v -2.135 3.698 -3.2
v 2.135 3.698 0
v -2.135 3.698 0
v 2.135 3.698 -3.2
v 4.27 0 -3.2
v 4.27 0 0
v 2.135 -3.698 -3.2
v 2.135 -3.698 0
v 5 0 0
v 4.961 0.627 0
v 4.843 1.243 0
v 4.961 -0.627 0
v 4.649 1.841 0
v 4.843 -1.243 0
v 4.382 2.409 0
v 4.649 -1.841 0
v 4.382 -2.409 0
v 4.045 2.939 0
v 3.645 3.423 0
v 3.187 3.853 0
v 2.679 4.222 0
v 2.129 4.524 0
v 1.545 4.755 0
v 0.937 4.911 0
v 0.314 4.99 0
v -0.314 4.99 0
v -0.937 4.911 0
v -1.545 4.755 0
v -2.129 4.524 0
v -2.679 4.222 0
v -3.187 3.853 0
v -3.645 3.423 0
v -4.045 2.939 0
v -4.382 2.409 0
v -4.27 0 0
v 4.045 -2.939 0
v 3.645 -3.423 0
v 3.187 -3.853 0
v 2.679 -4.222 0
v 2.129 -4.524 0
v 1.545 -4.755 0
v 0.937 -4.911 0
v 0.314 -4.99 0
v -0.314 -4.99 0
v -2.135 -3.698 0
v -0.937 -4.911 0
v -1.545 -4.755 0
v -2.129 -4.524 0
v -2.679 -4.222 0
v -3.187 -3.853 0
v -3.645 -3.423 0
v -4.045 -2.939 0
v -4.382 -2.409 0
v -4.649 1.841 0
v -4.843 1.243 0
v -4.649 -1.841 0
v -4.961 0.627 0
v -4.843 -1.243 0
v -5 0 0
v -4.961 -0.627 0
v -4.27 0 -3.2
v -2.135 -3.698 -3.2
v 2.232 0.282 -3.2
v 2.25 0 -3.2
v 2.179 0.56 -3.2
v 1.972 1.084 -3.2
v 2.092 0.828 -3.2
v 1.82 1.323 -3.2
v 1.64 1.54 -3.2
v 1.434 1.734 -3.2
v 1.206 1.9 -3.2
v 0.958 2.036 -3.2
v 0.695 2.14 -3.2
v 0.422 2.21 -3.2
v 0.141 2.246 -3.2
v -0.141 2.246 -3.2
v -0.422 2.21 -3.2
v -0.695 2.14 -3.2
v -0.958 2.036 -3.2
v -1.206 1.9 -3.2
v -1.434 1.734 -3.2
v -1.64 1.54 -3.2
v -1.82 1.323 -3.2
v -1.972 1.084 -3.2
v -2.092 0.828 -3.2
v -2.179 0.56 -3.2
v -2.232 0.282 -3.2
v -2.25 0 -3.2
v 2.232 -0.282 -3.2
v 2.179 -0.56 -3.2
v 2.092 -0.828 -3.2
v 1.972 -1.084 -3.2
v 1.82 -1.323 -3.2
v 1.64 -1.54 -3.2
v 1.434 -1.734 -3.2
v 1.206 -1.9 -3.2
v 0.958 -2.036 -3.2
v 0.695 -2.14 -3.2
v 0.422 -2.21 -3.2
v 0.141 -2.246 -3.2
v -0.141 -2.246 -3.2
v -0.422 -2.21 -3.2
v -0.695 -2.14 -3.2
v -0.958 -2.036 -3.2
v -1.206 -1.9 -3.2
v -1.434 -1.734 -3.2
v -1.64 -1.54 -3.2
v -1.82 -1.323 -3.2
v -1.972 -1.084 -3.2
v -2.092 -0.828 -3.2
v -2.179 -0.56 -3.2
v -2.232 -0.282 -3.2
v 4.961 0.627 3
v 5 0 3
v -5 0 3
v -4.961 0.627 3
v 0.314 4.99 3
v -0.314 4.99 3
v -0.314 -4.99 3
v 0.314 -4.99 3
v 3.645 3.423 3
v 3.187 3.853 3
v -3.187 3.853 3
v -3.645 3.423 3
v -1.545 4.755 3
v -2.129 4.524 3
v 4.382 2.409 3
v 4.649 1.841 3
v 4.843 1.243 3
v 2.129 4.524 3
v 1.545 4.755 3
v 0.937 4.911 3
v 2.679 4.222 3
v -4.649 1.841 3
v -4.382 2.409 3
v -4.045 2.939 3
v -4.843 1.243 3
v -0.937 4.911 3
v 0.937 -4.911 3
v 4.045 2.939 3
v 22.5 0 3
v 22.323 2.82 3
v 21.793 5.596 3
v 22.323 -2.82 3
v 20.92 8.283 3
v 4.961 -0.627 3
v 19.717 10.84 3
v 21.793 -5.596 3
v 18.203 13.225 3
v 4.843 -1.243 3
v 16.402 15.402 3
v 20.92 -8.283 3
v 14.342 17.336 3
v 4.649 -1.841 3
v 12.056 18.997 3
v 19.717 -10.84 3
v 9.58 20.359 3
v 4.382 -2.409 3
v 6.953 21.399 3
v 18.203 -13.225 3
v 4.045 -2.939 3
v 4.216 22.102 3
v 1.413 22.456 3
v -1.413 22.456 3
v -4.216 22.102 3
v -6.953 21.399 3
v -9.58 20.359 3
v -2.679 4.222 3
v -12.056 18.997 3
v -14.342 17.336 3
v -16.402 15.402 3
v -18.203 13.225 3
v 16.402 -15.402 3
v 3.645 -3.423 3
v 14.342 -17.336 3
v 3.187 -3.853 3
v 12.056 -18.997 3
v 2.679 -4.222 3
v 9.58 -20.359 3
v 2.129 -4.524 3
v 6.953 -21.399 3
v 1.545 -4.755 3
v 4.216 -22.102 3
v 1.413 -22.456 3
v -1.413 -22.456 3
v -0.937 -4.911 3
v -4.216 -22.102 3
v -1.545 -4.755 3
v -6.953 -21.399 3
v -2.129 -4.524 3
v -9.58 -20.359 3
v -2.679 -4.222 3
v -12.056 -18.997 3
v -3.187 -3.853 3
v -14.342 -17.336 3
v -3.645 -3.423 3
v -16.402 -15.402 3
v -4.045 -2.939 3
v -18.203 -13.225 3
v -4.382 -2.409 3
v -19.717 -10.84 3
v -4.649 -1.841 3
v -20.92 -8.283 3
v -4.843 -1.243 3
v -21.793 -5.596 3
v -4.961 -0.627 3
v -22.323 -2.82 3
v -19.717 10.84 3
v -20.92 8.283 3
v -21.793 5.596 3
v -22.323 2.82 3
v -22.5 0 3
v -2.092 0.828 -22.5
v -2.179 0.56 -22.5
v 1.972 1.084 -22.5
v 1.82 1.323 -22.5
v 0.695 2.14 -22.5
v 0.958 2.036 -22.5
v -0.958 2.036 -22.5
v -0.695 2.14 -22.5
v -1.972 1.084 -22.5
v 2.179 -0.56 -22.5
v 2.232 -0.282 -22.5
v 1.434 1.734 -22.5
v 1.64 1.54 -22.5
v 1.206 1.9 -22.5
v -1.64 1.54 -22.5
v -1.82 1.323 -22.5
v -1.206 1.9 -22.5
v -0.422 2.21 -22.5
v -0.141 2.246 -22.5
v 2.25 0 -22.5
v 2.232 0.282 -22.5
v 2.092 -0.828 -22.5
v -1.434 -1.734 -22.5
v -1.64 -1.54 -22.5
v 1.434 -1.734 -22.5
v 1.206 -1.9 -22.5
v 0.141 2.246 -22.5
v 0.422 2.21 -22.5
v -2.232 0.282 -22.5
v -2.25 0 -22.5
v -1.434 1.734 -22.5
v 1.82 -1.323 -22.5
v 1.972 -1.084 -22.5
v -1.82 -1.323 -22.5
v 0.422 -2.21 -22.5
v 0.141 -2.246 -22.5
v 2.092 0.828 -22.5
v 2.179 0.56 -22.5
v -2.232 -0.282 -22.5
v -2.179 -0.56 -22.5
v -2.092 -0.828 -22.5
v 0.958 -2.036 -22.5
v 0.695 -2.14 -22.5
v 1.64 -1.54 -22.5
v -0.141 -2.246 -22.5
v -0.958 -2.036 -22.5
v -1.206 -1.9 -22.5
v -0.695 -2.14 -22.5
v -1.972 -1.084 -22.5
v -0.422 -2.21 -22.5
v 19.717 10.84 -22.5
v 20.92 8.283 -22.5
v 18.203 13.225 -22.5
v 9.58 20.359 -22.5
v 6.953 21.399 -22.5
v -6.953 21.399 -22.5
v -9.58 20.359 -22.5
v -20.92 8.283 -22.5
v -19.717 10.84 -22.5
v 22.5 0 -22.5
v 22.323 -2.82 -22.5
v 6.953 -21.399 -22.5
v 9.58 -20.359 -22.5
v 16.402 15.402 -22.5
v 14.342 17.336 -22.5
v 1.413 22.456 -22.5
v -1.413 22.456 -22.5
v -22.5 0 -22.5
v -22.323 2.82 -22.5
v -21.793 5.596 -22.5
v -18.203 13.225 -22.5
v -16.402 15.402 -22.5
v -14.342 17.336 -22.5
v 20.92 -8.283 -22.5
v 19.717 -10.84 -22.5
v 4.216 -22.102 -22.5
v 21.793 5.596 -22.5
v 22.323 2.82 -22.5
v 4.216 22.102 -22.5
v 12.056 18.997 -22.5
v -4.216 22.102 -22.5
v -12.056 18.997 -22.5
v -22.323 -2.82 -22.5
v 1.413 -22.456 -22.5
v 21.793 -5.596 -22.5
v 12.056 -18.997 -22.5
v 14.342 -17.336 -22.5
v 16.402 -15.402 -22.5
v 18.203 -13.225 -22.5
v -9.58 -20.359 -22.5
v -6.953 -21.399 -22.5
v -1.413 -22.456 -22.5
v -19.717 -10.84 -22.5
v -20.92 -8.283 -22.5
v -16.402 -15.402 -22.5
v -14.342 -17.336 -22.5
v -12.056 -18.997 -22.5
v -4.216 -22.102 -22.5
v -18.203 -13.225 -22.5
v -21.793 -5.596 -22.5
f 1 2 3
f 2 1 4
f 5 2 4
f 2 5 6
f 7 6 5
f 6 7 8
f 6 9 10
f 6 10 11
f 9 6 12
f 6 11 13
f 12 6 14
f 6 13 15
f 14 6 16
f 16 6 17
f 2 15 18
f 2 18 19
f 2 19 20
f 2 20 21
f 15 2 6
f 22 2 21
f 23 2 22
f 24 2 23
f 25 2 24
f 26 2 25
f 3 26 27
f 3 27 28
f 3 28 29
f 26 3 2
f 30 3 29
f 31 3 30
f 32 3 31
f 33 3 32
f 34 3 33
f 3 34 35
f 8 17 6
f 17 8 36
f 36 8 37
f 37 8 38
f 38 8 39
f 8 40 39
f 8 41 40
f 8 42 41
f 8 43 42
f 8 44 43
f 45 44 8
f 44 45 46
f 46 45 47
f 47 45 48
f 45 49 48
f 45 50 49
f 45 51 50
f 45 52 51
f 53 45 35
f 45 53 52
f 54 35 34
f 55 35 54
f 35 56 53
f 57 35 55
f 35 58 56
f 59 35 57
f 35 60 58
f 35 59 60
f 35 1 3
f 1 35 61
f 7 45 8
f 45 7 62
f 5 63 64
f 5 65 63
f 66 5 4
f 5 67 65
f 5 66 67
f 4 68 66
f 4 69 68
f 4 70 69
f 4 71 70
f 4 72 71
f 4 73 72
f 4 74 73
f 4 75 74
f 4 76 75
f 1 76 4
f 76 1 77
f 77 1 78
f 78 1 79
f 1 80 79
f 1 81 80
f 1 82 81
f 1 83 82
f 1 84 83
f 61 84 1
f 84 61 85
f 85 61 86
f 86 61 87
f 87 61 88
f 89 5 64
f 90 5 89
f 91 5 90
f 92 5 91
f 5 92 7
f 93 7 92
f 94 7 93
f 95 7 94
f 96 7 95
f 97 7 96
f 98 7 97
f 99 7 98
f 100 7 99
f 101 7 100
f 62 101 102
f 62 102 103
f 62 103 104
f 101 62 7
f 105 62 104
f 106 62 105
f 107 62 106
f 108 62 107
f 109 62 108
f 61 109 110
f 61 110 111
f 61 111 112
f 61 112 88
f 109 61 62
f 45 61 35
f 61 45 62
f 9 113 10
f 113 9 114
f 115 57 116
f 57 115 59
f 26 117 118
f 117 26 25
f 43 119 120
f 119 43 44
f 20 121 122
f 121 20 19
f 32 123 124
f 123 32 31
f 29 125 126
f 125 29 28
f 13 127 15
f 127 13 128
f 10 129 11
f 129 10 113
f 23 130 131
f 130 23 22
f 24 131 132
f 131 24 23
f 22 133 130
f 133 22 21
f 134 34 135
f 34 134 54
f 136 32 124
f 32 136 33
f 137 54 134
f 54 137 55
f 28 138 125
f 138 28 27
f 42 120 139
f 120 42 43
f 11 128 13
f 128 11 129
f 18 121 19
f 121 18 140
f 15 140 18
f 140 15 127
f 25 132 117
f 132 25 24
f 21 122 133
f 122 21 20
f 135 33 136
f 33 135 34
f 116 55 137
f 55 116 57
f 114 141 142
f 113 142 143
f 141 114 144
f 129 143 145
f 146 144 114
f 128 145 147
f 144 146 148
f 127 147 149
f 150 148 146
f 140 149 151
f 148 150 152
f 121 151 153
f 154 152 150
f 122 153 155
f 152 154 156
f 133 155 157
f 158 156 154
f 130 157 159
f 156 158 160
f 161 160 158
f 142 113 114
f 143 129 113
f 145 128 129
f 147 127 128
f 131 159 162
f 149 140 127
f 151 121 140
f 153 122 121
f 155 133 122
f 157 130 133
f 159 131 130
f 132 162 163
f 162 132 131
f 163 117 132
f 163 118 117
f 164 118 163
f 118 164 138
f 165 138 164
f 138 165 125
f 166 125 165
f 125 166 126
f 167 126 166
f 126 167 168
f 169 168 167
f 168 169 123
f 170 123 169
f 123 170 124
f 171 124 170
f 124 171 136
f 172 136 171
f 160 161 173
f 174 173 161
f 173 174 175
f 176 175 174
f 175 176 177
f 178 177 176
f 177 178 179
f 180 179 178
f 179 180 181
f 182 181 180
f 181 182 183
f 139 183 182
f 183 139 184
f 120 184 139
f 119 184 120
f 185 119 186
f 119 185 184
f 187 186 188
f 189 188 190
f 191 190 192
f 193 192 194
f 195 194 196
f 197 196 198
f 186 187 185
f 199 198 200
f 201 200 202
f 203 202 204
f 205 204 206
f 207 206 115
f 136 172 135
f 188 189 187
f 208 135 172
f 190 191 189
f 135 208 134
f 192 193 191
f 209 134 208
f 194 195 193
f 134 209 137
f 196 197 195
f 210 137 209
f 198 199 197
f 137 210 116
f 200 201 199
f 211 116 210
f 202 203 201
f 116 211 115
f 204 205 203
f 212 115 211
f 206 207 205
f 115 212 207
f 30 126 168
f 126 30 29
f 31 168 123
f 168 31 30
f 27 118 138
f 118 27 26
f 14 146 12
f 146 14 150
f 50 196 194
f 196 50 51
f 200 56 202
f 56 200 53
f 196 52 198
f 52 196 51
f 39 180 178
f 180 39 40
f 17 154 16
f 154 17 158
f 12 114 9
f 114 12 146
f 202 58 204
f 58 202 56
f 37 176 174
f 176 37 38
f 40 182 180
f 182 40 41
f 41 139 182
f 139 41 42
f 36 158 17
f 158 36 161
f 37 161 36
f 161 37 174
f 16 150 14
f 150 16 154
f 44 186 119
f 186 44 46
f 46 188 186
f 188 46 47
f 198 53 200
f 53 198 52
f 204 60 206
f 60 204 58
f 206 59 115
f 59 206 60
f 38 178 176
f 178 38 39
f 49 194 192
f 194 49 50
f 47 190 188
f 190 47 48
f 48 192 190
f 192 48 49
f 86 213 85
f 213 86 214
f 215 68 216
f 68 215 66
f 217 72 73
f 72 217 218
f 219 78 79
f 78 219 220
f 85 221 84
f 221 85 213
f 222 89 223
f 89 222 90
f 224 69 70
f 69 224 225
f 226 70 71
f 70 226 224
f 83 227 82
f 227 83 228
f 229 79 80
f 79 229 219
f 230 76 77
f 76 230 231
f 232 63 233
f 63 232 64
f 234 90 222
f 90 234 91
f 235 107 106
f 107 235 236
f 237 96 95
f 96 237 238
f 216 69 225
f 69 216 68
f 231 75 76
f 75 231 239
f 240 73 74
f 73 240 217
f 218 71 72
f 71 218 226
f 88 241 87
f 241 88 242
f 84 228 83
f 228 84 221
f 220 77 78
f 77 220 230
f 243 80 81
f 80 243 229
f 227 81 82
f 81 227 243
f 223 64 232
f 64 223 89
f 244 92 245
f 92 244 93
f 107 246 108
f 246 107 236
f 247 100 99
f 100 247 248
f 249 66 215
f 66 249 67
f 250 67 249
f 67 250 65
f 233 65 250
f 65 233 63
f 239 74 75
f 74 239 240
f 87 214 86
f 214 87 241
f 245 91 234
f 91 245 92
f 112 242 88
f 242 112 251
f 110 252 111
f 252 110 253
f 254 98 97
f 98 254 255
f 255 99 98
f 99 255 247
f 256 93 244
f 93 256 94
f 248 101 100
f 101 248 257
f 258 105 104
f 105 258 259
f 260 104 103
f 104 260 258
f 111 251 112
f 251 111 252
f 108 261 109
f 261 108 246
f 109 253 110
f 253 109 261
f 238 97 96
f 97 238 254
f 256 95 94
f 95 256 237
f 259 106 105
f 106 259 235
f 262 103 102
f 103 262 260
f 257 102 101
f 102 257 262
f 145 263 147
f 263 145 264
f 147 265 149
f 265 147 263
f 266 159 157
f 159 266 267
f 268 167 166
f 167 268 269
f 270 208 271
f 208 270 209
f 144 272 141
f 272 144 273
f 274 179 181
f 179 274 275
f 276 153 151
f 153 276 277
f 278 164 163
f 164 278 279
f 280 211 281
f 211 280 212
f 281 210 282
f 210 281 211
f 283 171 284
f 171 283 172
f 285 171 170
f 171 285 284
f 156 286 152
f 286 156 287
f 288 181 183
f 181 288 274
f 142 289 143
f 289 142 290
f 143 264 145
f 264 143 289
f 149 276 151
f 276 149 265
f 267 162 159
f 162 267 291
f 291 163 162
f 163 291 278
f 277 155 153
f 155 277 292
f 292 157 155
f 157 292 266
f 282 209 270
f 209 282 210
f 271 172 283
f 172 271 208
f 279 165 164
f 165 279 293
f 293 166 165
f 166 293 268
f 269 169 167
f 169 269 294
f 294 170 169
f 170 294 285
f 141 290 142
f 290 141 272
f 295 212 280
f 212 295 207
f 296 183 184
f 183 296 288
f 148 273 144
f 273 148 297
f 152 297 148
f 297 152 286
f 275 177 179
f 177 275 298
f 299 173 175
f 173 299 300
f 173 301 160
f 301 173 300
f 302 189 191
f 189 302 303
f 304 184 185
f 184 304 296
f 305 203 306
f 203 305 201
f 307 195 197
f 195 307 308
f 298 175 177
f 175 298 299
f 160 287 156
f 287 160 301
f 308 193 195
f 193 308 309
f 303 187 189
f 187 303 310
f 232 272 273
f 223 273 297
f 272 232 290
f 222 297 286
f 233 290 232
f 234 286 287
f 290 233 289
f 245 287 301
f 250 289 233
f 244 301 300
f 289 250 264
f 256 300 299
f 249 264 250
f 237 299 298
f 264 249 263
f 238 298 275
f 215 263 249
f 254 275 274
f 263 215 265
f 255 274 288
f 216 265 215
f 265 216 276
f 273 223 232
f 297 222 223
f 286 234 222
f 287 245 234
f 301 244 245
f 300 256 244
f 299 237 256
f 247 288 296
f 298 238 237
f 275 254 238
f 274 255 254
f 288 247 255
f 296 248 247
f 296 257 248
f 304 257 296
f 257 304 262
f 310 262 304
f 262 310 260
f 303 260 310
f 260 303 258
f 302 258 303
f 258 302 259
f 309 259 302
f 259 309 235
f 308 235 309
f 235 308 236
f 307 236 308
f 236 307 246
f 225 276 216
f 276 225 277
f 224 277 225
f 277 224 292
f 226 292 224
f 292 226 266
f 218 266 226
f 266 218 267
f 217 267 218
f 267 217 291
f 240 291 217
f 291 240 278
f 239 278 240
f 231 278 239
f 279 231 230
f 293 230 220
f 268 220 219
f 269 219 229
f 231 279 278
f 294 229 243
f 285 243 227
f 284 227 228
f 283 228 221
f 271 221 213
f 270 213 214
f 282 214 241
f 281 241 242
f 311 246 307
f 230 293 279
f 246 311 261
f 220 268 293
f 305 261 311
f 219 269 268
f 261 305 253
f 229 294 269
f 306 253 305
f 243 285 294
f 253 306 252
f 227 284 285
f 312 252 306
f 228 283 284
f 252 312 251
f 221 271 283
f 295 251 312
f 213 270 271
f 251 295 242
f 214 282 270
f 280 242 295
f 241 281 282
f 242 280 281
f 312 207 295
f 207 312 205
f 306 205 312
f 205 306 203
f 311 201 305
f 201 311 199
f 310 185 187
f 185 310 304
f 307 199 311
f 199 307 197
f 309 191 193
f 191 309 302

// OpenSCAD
$fn = 50;

difference() {
	union() {
		translate(v = [0, 0, -22.5]) {
			cylinder(h = 25.5, r = 22.5);
		}
	}
	union() {
		translate(v = [0, 0, 0]) {
			rotate(a = [0, 0, 0]) {
				difference() {
					union() {
						translate(v = [0, 0, -3.2]) {
							linear_extrude(height = 3.2) {
								polygon(points = [[4.2698, 0.0], [2.1349000000000005, 3.697755269078796], [-2.134899999999999, 3.6977552690787965], [-4.2698, 5.228996902999369e-16], [-2.134900000000002, -3.6977552690787956], [2.1348999999999974, -3.697755269078798]]);
							}
						}
					}
					union();
				}
			}
		}
		#cylinder(h = 3, r = 5.0);
		#translate(v = [0, 0, -100.0]) {
			cylinder(h = 200, r = 2.25);
		}
	}
}
